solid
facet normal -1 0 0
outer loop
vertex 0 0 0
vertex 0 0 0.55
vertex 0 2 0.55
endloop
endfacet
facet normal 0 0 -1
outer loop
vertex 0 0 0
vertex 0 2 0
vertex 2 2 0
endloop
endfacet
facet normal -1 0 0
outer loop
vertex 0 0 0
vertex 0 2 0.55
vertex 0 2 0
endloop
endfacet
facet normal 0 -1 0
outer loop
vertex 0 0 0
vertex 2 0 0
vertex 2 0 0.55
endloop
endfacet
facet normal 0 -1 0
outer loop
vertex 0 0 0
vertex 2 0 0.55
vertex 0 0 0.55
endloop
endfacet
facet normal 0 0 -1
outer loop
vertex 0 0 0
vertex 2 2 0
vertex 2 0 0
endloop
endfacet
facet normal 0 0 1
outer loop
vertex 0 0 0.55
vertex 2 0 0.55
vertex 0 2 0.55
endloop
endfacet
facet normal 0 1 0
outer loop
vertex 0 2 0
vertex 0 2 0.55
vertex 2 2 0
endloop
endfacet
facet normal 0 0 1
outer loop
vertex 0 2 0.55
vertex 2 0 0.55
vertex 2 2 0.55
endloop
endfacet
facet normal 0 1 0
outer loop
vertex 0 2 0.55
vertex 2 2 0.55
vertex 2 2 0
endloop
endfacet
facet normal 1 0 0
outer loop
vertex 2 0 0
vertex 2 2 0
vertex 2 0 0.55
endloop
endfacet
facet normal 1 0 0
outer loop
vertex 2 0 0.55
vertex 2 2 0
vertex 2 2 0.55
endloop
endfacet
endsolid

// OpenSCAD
/* Warning, this is a very basic generator with a lot of approximation 
input data : [UQFN, QMX, 02x02x0.55mm, 12, , A, C04-00247A]
generated by com.zoubworld.electronics.cad.model3d.Basic
Date : Sun Feb 15 10:50:48 CET 2026
*/

//body
color("black")
translate([0,0,0])
cube([2.0,2.0,0.55], center=false);
